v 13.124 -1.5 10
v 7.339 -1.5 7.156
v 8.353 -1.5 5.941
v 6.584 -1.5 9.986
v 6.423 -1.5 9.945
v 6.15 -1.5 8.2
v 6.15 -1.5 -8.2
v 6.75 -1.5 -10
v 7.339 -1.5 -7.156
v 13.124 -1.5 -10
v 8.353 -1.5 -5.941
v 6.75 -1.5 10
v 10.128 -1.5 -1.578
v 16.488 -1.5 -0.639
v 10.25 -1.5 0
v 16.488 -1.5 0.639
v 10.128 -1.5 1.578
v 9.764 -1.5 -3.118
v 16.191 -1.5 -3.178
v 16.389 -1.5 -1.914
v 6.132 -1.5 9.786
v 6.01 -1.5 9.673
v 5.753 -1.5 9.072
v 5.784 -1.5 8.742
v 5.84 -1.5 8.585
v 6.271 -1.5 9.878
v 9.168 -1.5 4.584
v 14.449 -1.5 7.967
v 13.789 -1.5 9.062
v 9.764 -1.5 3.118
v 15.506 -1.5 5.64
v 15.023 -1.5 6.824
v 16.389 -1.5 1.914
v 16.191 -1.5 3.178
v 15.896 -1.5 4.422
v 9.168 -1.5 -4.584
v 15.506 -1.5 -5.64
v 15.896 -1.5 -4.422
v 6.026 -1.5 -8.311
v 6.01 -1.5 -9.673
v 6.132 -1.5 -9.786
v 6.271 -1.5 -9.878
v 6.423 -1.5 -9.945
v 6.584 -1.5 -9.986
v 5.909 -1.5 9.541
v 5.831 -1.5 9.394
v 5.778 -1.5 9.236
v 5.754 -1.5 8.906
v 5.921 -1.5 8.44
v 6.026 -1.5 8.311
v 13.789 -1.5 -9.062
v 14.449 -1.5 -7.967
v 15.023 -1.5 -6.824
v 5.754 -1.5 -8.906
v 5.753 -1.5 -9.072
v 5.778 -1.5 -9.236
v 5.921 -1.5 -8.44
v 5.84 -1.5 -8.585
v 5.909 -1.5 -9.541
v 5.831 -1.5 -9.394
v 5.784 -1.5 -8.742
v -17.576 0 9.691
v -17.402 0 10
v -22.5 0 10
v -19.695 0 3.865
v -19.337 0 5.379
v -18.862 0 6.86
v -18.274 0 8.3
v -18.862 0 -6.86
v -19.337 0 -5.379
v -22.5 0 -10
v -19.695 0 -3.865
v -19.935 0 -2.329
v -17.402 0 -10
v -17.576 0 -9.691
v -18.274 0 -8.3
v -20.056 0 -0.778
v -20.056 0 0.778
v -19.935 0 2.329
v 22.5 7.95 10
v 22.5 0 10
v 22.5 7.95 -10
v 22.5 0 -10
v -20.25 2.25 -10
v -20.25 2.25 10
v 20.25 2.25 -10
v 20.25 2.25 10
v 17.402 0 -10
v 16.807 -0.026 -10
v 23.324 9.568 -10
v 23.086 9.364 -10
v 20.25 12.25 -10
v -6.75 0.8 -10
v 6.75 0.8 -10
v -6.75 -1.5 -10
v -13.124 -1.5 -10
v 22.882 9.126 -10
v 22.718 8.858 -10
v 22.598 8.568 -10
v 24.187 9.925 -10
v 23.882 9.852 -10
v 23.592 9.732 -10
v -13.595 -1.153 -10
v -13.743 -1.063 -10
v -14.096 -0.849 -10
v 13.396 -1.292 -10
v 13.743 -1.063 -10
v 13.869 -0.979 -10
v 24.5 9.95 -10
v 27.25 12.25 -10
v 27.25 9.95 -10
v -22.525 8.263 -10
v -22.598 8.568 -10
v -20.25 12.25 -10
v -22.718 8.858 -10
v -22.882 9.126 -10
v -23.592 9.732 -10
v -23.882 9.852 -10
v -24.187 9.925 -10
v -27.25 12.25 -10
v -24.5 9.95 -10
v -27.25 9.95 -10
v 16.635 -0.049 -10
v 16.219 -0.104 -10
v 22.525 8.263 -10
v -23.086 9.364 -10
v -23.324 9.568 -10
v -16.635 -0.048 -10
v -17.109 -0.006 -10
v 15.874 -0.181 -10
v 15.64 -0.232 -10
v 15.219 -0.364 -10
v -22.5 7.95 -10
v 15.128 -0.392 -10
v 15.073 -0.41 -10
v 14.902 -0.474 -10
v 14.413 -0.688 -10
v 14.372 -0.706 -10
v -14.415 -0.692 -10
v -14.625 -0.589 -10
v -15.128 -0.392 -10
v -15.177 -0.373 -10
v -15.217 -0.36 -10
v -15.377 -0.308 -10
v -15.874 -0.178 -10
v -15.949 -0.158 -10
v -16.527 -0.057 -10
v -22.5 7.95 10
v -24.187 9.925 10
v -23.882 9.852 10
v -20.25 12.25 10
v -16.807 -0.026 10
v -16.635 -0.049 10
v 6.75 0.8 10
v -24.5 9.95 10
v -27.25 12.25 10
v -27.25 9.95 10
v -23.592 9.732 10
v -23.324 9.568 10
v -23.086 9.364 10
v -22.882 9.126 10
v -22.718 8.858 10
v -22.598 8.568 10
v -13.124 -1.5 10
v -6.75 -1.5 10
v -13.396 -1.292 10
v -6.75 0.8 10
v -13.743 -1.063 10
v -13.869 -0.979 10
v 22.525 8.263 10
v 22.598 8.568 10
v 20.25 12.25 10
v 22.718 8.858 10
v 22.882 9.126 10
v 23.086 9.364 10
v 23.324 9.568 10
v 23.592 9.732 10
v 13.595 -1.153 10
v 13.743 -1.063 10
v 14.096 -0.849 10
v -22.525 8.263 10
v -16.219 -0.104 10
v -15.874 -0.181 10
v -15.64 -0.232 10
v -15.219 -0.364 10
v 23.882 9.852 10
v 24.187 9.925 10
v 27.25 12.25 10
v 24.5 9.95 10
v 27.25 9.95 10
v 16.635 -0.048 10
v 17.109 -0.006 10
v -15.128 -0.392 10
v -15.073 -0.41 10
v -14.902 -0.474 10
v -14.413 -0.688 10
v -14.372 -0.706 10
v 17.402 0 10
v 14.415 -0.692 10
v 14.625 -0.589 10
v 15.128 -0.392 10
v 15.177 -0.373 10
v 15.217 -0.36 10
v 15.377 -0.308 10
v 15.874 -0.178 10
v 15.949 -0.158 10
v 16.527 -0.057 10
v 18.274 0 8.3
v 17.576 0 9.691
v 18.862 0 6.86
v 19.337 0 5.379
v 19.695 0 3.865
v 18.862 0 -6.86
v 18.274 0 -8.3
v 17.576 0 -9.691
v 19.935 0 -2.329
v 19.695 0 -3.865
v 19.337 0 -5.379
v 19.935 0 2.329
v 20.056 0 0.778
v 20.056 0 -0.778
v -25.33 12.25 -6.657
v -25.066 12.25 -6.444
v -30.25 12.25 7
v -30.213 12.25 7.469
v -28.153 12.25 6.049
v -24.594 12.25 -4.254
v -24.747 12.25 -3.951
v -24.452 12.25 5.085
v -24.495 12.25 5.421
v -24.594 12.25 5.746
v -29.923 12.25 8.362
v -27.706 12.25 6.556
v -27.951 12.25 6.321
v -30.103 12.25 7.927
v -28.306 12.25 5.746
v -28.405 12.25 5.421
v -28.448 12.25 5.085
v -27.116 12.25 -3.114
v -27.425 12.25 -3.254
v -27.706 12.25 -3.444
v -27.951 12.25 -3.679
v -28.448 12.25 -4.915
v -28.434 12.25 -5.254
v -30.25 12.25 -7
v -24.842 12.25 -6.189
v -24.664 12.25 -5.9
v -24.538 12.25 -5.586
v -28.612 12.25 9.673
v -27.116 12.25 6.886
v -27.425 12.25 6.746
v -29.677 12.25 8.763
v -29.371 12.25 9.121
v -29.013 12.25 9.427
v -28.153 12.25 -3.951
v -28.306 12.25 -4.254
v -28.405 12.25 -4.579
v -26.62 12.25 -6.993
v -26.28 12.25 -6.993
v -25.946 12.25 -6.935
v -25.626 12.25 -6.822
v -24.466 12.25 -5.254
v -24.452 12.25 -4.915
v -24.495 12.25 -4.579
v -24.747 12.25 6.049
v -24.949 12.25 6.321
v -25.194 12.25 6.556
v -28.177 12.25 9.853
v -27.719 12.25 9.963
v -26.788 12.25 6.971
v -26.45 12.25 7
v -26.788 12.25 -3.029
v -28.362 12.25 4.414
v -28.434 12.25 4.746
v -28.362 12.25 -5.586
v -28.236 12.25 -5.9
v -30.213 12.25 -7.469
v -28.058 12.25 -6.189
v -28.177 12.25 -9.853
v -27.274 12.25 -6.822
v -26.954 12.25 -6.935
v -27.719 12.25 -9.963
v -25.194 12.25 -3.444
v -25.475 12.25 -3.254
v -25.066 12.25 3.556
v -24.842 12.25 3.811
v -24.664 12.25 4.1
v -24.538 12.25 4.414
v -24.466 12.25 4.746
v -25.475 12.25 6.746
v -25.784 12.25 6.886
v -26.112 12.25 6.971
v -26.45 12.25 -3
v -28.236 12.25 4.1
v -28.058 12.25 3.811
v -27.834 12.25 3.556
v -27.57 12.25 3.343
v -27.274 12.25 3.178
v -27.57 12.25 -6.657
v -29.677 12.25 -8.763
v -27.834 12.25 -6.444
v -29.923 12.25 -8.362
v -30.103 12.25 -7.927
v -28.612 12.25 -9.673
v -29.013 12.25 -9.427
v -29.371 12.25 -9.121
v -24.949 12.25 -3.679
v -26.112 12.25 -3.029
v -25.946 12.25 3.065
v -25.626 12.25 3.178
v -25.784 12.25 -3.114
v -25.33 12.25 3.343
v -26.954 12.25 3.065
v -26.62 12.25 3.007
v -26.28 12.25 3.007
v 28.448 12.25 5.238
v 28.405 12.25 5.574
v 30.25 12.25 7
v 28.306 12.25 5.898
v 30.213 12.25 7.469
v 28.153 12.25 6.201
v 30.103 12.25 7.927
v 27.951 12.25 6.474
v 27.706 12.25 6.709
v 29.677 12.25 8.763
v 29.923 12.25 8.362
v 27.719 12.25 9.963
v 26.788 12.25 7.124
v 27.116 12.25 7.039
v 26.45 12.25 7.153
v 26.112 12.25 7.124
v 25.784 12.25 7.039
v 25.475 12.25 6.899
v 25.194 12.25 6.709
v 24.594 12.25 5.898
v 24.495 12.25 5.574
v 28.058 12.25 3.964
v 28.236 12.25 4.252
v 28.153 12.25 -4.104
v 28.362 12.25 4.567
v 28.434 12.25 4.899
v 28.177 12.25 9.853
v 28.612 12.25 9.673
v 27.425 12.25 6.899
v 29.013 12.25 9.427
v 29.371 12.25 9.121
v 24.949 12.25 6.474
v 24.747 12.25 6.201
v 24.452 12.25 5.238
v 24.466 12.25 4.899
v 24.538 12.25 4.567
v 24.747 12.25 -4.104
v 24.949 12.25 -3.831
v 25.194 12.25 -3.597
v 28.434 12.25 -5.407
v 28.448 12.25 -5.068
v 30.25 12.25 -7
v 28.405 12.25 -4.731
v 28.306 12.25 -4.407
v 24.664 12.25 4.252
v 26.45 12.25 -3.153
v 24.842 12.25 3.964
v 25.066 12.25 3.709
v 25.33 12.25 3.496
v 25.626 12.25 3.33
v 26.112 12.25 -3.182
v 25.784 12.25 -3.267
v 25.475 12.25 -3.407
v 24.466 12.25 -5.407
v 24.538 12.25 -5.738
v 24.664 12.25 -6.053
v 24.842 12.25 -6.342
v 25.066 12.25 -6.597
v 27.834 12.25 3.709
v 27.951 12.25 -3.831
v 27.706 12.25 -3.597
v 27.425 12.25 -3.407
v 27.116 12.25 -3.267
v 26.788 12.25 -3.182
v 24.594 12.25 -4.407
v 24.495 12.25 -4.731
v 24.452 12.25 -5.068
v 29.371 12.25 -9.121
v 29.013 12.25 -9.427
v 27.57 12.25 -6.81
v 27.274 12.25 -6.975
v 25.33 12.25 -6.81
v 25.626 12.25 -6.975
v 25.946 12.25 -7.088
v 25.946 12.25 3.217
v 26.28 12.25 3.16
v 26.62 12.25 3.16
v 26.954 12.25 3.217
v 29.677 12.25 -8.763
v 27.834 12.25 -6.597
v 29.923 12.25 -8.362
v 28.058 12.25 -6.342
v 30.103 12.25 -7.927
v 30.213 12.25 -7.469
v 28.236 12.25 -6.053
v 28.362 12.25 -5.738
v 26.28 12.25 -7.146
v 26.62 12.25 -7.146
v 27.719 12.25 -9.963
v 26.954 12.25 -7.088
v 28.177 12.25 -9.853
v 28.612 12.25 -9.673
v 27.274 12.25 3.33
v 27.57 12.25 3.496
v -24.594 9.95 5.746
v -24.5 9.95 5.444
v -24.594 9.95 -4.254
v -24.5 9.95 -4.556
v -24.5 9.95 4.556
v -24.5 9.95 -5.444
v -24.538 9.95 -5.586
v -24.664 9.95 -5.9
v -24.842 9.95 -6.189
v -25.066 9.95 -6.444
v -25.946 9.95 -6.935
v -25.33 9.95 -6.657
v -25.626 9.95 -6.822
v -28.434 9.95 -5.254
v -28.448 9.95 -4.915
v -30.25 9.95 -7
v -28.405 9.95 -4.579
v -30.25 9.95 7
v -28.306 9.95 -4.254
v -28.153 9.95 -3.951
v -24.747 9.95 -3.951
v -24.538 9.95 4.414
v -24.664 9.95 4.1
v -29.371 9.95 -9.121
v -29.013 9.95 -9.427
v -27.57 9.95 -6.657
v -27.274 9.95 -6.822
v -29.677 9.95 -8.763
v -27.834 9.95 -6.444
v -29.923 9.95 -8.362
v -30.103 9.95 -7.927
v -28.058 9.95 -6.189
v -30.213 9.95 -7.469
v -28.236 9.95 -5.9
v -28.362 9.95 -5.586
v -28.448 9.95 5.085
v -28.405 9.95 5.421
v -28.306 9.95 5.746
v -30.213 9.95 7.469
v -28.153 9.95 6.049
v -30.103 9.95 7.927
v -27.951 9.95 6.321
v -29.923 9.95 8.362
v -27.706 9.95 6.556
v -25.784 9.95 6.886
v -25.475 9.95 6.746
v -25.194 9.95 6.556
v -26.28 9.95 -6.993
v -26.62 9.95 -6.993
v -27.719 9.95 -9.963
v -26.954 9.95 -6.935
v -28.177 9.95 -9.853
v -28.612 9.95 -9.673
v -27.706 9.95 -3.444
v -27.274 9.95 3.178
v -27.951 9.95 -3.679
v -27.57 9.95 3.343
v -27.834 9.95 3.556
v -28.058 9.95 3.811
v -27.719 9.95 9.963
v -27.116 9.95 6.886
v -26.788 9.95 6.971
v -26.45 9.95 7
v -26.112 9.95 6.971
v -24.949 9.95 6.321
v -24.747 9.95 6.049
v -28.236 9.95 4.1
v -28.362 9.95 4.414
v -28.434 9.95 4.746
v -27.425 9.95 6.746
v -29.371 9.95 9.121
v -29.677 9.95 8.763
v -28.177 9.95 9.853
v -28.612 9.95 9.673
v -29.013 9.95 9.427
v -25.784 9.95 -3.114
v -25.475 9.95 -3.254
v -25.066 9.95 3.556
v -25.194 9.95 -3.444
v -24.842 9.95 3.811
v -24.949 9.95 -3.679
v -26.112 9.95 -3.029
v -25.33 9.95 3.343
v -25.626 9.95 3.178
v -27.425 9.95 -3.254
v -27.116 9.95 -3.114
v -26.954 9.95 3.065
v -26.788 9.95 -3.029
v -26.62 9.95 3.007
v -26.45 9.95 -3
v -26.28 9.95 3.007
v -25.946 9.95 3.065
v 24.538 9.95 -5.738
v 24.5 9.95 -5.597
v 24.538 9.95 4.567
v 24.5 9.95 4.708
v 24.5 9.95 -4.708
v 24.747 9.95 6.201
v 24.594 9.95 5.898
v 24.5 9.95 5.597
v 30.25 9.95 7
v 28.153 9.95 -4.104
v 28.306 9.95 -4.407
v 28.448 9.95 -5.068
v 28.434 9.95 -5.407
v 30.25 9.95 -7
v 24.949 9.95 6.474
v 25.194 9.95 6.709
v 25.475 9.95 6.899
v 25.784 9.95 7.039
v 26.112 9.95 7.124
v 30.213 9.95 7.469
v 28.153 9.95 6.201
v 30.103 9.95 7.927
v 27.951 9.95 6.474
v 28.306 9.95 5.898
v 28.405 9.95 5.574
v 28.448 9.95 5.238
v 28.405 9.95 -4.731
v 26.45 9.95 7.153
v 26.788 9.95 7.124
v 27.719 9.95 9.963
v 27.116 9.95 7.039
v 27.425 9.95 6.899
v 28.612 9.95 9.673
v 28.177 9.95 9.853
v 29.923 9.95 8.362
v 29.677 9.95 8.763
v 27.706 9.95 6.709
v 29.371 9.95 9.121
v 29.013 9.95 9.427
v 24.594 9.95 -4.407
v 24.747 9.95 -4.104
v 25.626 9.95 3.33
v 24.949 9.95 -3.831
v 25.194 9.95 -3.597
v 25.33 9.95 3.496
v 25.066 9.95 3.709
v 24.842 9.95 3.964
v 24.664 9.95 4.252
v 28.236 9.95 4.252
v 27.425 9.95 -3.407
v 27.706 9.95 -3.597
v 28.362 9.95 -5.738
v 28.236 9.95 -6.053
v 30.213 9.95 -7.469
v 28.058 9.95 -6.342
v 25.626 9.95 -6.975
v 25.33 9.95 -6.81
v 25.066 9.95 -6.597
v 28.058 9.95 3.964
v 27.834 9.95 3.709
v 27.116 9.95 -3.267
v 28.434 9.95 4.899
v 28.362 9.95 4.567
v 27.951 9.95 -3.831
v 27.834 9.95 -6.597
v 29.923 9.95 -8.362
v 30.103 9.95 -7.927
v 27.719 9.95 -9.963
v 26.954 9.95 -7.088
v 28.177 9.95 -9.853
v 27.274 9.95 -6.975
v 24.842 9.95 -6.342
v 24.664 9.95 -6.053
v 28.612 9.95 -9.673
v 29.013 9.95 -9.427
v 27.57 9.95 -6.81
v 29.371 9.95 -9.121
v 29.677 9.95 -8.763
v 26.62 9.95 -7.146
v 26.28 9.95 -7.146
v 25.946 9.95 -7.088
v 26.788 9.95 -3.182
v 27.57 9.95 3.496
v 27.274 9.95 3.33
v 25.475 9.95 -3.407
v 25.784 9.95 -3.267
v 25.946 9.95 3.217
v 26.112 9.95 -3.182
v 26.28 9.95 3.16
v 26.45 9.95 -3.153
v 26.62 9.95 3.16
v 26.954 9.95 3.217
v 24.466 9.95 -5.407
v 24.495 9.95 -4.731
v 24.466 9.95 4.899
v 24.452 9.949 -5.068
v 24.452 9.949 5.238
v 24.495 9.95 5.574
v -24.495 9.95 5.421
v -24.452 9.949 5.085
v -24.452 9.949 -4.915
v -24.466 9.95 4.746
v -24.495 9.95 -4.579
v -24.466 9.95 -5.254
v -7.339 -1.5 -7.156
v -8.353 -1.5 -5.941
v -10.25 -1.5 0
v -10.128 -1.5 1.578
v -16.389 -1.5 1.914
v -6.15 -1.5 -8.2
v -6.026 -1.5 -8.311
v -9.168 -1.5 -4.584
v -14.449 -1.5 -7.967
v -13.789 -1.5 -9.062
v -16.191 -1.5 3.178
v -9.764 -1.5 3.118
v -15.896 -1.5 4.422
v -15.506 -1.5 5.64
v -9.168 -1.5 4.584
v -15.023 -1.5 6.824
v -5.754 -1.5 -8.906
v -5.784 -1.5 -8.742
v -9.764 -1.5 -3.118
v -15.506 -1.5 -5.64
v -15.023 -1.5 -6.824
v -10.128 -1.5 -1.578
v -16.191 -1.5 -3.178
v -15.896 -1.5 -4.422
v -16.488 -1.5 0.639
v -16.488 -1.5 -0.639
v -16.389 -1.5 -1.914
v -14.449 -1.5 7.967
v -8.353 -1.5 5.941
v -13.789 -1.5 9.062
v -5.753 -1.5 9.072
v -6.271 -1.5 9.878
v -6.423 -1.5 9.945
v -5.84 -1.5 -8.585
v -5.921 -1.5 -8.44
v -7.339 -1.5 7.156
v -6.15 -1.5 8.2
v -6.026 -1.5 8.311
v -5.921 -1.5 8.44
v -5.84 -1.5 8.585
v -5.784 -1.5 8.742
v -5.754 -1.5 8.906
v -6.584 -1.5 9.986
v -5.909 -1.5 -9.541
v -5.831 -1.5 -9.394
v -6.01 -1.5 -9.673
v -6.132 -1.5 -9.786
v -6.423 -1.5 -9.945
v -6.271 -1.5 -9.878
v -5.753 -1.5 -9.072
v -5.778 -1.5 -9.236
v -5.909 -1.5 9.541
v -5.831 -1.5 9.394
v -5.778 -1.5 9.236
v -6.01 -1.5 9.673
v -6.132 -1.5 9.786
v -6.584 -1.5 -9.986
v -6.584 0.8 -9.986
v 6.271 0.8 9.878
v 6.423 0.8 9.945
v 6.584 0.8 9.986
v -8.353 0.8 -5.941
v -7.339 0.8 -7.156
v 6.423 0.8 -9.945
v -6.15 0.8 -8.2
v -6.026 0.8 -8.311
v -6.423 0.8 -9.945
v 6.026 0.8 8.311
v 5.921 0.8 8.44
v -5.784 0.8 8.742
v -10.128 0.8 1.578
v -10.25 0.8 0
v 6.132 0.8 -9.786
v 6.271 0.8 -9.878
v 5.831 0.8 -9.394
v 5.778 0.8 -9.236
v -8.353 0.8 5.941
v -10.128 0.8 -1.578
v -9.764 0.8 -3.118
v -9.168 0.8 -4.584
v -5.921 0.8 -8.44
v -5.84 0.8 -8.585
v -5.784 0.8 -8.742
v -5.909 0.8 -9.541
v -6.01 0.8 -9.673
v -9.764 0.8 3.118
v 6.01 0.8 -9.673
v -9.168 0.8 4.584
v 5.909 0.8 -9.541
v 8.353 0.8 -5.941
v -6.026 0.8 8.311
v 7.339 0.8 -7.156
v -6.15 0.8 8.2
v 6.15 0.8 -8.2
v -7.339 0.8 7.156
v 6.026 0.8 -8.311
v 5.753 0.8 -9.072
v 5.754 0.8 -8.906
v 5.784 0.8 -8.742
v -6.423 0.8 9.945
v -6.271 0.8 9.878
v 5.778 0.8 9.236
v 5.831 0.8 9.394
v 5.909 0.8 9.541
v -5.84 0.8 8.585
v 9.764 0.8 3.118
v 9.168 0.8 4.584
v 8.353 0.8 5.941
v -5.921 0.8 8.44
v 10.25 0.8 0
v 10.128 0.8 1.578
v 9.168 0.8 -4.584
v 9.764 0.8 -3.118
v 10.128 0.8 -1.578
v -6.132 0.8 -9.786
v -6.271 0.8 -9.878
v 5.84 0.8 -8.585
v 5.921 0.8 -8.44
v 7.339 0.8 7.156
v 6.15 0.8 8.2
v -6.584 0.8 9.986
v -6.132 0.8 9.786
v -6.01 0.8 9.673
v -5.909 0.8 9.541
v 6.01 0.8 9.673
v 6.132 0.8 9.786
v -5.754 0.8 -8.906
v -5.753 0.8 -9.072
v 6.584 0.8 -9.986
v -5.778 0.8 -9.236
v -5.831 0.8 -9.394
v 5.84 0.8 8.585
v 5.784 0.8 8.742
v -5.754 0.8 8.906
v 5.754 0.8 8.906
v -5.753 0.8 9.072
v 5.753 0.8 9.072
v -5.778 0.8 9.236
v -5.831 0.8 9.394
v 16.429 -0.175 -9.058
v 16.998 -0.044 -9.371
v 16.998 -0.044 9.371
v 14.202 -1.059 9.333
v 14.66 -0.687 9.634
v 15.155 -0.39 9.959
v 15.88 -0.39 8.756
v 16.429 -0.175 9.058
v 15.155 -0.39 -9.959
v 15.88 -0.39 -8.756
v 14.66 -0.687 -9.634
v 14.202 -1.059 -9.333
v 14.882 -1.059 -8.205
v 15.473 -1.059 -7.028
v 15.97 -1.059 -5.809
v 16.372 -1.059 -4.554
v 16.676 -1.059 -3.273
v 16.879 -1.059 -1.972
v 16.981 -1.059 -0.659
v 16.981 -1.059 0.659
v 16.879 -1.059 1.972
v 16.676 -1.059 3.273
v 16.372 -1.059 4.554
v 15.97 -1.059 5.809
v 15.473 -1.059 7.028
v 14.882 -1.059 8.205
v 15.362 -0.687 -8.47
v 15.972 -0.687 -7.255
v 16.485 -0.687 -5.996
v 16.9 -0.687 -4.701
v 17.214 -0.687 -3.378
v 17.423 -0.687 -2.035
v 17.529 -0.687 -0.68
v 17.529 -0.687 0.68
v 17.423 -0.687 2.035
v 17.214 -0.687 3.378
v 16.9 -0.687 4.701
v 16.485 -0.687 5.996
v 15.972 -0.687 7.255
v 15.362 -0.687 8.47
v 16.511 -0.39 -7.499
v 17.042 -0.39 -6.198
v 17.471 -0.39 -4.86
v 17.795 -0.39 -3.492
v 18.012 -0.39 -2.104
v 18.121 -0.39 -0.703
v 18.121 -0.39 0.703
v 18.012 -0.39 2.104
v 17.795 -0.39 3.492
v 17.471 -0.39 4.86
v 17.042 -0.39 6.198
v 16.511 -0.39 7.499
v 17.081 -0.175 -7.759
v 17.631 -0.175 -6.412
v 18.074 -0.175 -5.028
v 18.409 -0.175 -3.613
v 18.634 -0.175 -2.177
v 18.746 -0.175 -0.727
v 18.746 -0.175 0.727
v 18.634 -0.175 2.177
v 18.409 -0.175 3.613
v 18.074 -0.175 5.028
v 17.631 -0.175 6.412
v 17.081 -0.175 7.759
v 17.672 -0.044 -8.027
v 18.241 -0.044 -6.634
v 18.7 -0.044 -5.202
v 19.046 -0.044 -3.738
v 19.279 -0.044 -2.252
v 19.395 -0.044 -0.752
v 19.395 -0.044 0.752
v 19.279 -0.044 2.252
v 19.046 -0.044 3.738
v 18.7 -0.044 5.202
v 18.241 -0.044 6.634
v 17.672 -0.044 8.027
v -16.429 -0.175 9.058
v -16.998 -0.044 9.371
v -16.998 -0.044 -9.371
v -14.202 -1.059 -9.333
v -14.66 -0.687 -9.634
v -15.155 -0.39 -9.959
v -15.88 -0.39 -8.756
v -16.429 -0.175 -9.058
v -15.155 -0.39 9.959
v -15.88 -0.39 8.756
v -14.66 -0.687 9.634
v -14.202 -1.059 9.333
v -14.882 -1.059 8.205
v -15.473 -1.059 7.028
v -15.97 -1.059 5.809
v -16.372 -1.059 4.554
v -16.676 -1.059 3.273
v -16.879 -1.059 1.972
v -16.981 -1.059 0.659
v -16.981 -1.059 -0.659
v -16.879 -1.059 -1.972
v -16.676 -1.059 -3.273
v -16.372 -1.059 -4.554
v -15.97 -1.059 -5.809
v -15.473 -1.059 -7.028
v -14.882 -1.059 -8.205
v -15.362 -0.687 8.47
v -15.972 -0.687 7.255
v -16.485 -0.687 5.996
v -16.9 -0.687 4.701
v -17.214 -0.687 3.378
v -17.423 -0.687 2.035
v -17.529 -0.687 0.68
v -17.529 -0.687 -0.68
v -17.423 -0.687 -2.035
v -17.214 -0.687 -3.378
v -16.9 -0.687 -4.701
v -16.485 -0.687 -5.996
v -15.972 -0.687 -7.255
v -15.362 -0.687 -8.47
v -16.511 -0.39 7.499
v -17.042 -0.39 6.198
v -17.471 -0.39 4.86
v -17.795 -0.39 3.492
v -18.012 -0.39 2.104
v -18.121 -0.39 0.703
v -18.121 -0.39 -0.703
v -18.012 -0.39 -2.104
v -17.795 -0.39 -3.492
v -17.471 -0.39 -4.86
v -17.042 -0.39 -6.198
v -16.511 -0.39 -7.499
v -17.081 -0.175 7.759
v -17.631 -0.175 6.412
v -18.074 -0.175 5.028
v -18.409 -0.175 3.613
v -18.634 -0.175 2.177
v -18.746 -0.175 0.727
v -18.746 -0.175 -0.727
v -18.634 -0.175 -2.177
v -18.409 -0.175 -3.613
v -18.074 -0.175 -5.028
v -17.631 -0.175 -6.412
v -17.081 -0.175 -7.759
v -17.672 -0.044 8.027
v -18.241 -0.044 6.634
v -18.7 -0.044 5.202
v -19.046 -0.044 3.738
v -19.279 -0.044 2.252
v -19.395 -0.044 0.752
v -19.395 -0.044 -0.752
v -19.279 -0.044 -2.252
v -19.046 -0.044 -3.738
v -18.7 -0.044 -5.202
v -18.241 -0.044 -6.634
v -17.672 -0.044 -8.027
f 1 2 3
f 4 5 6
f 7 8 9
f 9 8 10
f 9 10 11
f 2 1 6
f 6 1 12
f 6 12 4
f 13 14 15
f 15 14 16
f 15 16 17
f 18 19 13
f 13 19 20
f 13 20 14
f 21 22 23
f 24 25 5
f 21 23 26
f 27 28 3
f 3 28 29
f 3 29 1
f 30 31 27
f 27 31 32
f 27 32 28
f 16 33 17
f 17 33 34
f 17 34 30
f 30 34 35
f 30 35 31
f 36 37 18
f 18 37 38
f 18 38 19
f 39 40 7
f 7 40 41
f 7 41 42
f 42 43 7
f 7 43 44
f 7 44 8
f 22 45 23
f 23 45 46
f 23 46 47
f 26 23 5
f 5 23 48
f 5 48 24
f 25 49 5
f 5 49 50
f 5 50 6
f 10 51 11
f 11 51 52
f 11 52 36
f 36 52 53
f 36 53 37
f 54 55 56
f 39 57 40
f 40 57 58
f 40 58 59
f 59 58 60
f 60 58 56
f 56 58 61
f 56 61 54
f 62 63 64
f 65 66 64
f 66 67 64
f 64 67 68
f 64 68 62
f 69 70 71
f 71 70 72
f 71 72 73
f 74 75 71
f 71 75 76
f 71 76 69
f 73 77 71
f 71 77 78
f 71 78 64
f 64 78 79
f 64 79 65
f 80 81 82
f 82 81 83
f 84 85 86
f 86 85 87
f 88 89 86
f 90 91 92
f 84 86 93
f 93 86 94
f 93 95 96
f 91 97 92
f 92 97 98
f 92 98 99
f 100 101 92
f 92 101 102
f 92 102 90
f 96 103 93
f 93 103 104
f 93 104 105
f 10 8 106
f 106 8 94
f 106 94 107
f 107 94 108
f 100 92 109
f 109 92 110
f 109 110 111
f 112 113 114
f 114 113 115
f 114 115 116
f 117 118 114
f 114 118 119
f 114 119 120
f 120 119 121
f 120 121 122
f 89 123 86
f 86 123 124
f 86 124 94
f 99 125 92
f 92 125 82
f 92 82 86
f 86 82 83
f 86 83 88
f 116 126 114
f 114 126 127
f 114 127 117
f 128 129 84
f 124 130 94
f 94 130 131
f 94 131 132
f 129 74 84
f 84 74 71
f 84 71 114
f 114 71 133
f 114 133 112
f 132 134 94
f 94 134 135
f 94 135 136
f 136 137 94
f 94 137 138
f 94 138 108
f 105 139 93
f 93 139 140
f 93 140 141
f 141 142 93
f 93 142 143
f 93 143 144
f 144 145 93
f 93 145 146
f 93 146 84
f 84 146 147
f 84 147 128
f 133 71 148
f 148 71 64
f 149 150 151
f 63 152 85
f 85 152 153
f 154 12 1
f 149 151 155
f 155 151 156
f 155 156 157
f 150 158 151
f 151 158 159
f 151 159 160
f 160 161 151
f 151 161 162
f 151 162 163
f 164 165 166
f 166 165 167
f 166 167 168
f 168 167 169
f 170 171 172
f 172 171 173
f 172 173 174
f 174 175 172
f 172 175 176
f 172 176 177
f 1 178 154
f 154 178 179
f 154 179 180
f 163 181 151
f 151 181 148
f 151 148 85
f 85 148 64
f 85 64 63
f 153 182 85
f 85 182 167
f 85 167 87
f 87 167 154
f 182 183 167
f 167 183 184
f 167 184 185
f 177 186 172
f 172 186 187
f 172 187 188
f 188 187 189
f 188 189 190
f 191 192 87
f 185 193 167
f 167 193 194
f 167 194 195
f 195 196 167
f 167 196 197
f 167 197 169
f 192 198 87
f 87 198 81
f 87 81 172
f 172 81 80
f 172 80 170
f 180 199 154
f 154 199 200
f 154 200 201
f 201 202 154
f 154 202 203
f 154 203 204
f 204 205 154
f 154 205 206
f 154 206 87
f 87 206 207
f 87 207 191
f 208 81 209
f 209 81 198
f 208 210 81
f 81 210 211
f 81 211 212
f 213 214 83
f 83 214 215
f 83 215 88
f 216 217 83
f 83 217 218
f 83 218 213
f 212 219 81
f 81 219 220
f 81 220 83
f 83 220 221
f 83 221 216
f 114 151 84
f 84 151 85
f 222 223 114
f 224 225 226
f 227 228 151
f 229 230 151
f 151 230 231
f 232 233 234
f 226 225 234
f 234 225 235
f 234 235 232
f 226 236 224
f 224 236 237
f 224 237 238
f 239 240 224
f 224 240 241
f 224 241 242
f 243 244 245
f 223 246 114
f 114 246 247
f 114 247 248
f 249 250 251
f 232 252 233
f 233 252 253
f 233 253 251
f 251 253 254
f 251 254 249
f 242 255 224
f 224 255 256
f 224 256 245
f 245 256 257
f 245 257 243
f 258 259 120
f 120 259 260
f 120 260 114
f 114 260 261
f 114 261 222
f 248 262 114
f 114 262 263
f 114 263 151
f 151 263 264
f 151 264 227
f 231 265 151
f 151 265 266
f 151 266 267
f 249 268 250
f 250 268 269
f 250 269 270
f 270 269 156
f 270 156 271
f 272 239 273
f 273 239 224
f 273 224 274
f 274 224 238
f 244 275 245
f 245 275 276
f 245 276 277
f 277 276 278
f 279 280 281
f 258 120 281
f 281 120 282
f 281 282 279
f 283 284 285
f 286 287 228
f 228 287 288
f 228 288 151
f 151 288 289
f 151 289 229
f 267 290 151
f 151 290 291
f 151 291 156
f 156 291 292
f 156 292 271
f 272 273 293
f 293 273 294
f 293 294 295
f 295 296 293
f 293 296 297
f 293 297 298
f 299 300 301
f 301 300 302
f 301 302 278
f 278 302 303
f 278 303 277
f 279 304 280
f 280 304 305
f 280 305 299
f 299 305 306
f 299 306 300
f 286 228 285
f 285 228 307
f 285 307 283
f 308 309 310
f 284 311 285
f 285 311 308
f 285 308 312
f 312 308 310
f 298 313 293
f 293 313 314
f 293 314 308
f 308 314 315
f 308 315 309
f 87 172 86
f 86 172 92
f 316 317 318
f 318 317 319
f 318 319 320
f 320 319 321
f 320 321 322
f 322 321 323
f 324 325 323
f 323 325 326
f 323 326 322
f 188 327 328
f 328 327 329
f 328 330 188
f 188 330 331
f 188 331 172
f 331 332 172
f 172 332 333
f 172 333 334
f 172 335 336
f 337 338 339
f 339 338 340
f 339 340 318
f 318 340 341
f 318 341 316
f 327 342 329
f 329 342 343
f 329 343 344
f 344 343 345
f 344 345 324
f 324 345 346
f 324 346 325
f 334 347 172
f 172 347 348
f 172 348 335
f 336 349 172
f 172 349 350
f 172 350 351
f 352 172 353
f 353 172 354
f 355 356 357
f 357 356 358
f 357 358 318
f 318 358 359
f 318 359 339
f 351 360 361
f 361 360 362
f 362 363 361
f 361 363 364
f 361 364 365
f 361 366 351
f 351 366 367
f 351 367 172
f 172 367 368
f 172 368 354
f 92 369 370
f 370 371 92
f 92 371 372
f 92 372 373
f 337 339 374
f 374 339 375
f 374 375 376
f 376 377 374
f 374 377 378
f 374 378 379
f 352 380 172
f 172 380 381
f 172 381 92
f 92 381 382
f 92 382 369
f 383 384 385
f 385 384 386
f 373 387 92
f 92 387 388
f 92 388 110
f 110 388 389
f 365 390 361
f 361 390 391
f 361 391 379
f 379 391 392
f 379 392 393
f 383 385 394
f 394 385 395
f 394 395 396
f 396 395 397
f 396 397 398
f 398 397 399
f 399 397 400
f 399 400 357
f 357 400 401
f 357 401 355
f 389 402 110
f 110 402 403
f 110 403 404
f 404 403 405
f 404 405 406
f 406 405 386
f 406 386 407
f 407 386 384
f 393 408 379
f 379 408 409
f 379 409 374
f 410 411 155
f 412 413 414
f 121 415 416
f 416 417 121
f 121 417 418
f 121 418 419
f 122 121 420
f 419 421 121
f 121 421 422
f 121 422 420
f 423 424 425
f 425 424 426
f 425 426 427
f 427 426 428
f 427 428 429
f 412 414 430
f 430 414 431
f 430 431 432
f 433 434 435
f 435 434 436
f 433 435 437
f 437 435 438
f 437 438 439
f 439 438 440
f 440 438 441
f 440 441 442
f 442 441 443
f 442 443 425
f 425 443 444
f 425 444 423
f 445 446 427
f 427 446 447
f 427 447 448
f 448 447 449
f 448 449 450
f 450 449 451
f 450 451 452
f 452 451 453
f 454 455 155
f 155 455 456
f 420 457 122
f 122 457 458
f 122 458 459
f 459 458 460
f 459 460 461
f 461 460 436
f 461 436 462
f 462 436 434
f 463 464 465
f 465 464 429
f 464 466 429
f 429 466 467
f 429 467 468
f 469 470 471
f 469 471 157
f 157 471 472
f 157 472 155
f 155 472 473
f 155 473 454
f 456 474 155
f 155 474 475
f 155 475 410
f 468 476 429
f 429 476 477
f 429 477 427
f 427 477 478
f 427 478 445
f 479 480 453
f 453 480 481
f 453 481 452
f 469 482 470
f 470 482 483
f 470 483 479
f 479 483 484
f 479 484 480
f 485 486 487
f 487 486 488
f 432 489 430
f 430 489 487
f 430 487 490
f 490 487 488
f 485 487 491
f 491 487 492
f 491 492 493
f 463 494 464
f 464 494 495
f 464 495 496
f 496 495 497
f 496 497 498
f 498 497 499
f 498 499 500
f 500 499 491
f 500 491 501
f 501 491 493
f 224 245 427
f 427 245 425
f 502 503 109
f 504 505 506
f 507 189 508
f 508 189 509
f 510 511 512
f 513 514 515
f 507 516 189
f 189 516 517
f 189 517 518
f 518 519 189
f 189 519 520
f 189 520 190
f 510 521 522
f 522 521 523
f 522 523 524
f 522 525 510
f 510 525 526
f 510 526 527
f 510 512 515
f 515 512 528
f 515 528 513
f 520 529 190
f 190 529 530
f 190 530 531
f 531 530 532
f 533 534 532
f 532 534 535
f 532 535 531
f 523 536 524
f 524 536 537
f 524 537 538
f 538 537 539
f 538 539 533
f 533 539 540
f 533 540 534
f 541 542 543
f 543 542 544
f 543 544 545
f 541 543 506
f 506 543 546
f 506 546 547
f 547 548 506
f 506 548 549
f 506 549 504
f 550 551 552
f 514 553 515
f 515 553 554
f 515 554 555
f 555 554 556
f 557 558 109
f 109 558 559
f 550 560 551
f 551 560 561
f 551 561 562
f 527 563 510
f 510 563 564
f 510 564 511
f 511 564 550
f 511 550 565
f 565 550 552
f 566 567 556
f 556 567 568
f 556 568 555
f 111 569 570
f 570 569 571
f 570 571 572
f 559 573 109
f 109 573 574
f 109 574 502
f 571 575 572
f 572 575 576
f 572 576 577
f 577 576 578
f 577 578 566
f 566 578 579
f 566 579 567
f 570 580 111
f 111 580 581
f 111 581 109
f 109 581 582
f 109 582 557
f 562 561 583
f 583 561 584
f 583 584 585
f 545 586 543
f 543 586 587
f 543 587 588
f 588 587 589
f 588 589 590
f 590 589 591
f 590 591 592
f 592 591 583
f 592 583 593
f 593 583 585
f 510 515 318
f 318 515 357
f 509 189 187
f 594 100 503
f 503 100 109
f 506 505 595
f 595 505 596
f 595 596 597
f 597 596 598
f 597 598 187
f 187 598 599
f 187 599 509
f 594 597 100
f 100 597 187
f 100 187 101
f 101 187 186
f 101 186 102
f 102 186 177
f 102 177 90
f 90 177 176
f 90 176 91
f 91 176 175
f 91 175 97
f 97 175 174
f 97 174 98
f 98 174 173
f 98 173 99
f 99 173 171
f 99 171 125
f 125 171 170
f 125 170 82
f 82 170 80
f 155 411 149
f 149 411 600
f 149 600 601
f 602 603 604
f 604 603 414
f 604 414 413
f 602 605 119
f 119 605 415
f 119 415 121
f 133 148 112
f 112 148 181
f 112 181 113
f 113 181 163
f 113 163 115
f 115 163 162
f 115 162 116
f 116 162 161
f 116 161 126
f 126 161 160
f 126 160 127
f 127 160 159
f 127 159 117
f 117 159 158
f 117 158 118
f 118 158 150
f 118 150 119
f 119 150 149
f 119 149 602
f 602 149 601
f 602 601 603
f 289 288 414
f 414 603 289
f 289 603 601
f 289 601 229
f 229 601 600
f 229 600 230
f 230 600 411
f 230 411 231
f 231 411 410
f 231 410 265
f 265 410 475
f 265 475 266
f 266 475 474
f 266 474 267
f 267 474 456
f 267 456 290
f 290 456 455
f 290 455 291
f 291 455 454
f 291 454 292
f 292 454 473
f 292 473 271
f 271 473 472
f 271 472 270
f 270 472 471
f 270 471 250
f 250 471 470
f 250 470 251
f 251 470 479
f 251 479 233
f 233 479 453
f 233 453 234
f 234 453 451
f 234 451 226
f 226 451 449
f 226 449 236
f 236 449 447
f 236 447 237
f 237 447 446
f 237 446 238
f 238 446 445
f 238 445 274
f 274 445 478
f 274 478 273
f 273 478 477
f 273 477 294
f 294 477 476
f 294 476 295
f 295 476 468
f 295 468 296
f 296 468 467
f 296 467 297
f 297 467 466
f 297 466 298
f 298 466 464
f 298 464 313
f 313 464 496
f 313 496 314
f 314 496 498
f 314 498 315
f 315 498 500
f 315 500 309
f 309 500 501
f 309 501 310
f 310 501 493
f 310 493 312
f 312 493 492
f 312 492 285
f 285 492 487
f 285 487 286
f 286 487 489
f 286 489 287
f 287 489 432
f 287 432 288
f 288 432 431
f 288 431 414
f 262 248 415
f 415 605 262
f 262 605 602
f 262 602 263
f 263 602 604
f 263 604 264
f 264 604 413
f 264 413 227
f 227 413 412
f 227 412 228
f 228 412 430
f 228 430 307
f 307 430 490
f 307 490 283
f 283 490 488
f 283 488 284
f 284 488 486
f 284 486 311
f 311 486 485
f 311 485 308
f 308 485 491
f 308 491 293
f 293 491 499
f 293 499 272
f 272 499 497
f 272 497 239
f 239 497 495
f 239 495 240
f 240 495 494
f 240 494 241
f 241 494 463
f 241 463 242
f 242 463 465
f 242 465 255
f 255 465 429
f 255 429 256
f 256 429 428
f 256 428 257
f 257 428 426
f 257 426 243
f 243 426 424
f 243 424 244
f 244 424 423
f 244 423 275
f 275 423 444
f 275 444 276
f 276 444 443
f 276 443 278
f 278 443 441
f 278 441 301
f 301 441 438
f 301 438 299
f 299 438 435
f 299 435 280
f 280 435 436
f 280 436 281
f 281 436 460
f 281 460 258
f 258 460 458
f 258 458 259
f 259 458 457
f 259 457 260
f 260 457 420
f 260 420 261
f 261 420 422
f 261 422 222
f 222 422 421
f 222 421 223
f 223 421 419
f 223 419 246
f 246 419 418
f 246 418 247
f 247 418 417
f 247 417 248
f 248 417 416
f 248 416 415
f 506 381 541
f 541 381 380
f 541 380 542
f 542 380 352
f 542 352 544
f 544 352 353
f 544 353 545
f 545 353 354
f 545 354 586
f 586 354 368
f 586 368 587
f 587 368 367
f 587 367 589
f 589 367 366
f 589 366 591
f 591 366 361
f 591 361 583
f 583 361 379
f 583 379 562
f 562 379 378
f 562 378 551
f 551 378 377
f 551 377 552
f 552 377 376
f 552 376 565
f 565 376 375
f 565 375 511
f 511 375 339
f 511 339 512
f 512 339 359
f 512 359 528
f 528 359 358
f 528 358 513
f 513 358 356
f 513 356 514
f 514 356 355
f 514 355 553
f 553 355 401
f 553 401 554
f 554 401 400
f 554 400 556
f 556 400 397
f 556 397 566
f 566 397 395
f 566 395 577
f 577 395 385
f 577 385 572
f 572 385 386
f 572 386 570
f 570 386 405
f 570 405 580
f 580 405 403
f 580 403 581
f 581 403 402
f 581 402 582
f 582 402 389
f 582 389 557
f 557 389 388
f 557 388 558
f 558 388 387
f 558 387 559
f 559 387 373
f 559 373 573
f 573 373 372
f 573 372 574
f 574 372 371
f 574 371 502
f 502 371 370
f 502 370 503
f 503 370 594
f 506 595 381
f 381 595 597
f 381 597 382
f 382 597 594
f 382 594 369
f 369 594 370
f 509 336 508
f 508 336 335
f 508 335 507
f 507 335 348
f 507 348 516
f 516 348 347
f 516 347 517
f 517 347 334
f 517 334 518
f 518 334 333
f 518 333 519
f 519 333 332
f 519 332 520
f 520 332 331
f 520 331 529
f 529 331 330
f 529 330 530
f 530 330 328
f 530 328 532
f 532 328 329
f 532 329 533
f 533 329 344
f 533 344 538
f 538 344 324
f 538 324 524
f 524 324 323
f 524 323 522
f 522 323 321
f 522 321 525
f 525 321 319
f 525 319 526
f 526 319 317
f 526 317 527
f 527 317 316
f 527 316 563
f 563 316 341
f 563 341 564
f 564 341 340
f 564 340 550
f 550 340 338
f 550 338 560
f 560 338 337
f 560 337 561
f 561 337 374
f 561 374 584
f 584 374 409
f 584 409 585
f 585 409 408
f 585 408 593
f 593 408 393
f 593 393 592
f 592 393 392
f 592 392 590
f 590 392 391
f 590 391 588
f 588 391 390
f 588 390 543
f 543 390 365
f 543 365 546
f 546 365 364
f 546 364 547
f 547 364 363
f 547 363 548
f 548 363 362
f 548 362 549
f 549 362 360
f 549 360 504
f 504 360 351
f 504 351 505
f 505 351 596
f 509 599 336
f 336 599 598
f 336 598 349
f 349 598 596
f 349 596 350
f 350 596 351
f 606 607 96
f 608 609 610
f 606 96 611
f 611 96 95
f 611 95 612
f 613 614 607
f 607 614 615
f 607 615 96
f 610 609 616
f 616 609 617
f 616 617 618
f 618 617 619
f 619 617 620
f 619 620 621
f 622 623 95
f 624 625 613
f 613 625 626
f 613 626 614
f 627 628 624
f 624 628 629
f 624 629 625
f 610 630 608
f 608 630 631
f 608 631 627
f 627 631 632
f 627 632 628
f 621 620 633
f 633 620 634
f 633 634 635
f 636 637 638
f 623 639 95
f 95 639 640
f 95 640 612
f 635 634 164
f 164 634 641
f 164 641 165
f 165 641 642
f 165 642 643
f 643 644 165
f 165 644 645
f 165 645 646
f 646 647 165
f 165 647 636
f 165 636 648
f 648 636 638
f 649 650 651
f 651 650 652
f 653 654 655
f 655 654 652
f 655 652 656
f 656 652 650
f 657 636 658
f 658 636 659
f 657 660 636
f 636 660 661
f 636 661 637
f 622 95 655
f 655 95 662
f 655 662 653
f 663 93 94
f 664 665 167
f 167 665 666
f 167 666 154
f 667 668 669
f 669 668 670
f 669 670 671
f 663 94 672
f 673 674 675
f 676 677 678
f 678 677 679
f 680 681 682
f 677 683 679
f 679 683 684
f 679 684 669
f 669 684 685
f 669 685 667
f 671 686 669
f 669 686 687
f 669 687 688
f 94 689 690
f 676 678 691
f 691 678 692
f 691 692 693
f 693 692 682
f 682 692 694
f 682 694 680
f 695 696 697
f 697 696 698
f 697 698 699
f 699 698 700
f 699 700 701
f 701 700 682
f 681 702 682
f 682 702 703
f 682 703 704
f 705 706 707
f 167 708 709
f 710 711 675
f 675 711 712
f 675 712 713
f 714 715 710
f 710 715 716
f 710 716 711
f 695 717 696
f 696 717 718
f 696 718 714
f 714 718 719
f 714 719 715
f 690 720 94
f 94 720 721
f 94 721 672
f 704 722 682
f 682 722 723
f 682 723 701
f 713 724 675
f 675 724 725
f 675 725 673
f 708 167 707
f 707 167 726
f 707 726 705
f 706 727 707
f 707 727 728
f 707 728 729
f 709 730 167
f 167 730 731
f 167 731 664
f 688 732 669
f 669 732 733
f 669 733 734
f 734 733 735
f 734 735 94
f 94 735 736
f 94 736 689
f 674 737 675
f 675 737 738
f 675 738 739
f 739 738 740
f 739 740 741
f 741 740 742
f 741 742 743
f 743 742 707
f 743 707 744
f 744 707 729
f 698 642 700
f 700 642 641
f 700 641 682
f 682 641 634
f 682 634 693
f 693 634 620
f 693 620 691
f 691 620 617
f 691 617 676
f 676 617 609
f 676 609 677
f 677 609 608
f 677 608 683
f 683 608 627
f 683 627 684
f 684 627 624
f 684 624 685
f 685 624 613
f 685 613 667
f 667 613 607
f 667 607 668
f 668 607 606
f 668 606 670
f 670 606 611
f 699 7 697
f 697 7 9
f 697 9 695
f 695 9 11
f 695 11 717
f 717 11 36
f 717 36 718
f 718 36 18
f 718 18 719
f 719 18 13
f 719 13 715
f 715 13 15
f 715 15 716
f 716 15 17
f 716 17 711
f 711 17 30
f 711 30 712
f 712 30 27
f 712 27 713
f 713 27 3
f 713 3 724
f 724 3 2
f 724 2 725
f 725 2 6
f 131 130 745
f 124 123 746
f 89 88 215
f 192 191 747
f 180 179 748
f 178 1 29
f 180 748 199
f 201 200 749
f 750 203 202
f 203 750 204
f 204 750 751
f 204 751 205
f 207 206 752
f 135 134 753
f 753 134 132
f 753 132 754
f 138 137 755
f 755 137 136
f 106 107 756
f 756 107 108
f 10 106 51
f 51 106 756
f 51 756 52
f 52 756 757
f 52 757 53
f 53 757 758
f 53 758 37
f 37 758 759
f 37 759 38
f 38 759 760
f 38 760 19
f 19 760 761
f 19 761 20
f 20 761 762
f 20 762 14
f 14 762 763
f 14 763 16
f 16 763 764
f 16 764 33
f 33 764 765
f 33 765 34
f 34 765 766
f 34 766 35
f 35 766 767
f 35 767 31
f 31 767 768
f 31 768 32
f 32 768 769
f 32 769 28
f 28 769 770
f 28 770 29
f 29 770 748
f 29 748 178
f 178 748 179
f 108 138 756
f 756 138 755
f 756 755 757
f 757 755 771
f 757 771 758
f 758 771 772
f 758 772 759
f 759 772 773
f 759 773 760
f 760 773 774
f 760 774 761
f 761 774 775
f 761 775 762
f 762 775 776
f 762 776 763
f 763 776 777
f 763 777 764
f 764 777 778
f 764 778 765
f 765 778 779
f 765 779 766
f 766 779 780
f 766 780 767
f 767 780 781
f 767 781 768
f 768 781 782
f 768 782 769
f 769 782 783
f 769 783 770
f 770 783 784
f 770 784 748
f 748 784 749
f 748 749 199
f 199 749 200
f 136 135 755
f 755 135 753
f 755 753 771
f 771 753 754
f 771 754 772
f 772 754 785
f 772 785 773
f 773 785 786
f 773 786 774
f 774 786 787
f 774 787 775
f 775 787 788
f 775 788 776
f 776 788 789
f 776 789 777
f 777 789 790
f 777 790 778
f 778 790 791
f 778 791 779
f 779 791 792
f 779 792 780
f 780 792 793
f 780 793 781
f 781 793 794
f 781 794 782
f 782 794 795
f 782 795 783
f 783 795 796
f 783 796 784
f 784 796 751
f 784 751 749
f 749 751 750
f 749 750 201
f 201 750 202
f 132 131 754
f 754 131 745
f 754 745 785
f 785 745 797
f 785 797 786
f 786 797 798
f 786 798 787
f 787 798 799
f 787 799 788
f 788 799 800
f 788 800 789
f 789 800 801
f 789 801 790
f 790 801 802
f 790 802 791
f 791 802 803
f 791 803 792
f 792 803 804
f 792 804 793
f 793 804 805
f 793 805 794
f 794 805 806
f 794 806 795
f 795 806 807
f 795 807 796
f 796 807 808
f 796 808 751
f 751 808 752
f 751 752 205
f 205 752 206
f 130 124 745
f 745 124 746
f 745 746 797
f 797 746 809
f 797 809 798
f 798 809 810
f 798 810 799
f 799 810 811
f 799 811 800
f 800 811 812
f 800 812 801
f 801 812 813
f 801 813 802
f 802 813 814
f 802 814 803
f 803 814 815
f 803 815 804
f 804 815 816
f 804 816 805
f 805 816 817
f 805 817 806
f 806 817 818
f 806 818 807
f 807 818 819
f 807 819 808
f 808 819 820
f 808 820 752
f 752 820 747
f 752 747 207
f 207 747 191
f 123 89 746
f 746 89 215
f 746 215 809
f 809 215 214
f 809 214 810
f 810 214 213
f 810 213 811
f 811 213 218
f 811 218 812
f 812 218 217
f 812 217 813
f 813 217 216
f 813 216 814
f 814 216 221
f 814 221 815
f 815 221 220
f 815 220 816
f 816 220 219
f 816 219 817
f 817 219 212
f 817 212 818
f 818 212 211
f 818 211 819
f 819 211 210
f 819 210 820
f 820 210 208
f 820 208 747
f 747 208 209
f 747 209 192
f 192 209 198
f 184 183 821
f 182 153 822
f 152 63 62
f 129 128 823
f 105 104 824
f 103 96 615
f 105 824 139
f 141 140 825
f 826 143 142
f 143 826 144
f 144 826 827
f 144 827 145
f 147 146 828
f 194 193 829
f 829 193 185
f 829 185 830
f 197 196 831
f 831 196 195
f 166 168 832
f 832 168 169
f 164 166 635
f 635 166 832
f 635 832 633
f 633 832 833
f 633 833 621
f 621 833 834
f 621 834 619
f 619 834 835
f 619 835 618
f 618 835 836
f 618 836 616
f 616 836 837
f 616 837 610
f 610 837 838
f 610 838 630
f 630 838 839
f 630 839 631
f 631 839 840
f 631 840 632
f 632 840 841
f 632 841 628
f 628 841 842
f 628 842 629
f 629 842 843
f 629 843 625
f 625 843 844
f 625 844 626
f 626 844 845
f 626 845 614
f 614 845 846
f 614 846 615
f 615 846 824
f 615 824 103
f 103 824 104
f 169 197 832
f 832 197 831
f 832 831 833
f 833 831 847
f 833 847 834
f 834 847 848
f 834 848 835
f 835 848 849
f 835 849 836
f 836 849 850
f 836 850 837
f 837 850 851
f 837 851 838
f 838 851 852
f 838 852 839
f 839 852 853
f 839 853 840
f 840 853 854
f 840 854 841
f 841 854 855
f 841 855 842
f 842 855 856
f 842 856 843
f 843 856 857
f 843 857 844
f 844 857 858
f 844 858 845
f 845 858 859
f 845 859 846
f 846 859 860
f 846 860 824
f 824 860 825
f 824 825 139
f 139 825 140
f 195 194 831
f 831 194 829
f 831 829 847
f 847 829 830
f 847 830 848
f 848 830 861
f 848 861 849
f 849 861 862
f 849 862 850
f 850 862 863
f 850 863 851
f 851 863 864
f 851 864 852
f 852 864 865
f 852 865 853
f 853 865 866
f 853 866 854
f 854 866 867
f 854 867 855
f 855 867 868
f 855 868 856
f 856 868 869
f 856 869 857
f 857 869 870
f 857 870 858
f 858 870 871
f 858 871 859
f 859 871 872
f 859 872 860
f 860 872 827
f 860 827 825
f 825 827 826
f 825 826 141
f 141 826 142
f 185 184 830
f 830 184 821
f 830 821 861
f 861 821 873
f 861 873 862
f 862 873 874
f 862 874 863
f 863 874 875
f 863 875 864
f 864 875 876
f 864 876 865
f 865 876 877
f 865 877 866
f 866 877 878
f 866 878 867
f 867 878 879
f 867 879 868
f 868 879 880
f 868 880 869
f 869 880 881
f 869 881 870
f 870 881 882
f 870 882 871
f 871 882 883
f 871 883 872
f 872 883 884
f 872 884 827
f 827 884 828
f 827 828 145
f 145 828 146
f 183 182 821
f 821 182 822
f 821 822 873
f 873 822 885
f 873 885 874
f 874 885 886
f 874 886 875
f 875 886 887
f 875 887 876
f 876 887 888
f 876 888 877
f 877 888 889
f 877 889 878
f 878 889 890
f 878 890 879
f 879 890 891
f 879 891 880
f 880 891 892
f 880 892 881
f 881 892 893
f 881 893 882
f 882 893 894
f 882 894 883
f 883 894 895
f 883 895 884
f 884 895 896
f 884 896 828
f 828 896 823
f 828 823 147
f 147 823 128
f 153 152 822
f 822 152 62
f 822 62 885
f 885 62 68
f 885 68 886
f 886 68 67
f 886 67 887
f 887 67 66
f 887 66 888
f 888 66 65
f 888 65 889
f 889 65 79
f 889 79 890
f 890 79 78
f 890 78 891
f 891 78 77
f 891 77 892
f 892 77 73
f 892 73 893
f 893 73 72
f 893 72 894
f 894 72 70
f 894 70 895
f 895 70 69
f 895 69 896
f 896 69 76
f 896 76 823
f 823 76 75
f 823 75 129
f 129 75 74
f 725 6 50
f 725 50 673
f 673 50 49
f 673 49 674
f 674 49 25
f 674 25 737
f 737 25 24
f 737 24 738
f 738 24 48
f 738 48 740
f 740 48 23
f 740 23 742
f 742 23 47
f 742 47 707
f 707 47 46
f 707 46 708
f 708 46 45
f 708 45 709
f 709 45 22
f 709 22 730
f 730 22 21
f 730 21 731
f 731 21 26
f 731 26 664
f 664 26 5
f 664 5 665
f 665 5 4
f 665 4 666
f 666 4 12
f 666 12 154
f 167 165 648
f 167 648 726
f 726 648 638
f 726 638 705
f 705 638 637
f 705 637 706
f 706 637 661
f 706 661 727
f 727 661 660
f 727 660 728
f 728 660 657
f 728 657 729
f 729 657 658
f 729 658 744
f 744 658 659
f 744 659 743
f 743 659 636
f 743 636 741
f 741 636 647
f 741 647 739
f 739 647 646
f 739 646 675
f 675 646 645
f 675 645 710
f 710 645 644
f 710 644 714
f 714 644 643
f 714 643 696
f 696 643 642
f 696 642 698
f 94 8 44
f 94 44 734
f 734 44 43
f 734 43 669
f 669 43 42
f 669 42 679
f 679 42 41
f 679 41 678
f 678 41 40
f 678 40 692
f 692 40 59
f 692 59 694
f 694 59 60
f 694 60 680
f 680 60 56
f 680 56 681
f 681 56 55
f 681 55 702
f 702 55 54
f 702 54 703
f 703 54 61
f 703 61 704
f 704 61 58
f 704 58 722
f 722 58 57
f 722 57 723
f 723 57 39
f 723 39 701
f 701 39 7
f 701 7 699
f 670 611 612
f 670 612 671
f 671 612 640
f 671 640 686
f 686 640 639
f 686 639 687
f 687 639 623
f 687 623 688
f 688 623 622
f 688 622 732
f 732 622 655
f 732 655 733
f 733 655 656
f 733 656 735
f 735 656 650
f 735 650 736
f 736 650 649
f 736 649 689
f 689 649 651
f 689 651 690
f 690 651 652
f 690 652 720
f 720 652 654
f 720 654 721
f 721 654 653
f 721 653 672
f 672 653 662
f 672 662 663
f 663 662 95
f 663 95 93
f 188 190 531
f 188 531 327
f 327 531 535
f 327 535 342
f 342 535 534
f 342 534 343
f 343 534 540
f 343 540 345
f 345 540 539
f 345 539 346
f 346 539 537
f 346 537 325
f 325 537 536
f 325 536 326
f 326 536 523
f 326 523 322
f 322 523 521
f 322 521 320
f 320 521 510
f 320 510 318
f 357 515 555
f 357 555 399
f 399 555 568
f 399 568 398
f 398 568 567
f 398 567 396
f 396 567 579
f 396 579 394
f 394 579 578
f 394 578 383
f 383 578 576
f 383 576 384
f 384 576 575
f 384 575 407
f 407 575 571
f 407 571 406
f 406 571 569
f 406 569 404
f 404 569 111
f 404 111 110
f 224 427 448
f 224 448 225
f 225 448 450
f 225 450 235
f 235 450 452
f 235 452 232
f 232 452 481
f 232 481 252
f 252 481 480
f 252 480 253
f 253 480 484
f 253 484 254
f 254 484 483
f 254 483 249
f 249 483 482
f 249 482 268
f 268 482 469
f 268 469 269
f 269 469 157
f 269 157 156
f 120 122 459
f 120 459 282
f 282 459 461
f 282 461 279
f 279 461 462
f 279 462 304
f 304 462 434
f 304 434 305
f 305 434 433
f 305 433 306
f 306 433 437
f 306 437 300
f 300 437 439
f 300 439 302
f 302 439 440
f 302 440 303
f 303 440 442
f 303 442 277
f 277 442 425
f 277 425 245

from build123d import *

# Parameters (mm, degrees)
SKETCH1_W           = 45
SKETCH1_H           = 20
BOSS_EXTRUDE1_DEPTH = 2.25
SKETCH2_W           = 2.25
SKETCH2_H           = 20
BOSS_EXTRUDE2_DEPTH = 10
SKETCH3_W           = 10
SKETCH3_H           = 20
BOSS_EXTRUDE3_DEPTH = 2.3
FILLET1_R           = 2
SKETCH4_R           = 2
CUT_EXTRUDE1_DEPTH  = 35.133927404
BOSS_EXTRUDE5_DEPTH = 1.5
SKETCH6_R           = 10.25
CUT_EXTRUDE2_DEPTH  = 2.3
FILLET2_R           = 5
FILLET3_R           = 1
FILLET4_R           = 3


with BuildPart() as part:
    # Sketch1 → Boss-Extrude1 (new body)
    with BuildSketch(Plane(origin=(0, 0, 0), x_dir=(1, 0, 0), z_dir=(0, 1, 0))):
        Rectangle(SKETCH1_W, SKETCH1_H)
    extrude(amount=BOSS_EXTRUDE1_DEPTH)

    # Sketch2 → Boss-Extrude2 (add)
    with BuildSketch(Plane(origin=(0, 2.25, 0), x_dir=(1, 0, 0), z_dir=(0, 1, 0))):
        with Locations((-21.375, 0)):
            Rectangle(SKETCH2_W, SKETCH2_H)
        with Locations((21.375, 0)):
            Rectangle(SKETCH2_W, SKETCH2_H)
    extrude(amount=BOSS_EXTRUDE2_DEPTH)

    # Sketch3 → Boss-Extrude3 (add)
    with BuildSketch(Plane(origin=(0, 12.25, 0), x_dir=(1, 0, 0), z_dir=(0, 1, 0))):
        with Locations((-25.25, 0)):
            Rectangle(SKETCH3_W, SKETCH3_H)
        with Locations((25.25, 0)):
            Rectangle(SKETCH3_W, SKETCH3_H)
    extrude(amount=-BOSS_EXTRUDE3_DEPTH)

    # Fillet1
    fillet1_edges = [part.edges().sort_by_distance(p)[0] for p in [
        (-22.5, 9.95, 0),
        (22.5, 9.95, 0),
    ]]
    fillet(fillet1_edges, radius=FILLET1_R)

    # Sketch4 → Cut-Extrude1 (cut, through all)
    with BuildSketch(Plane(origin=(0, 12.25, 0), x_dir=(1, 0, 0), z_dir=(0, 1, 0))):
        with Locations(Location((26.45, 5.15278214, 0), (0, 0, 270))):
            Circle(SKETCH4_R)
        with Locations(Location((26.45, -5.15278214, 0), (0, 0, 270))):
            Circle(SKETCH4_R)
        with Locations(Location((-26.45, 5, 0), (0, 0, 270))):
            Circle(SKETCH4_R)
        with Locations(Location((-26.45, -5, 0), (0, 0, 270))):
            Circle(SKETCH4_R)
    extrude(amount=-CUT_EXTRUDE1_DEPTH, mode=Mode.SUBTRACT)

    # Sketch5 → Boss-Extrude5 (add)
    with BuildSketch(Plane.XZ):
        with BuildLine():
            Line((13.124404748, 10), (-13.124404748, 10))
            ThreePointArc((-13.124404748, 10), (-16.5, 0), (-13.124404748, -10))
            Line((-13.124404748, -10), (13.124404748, -10))
            ThreePointArc((13.124404748, -10), (16.5, 0), (13.124404748, 10))
        make_face()
    extrude(amount=BOSS_EXTRUDE5_DEPTH)

    # Sketch6 → Cut-Extrude2 (cut)
    with BuildSketch(Plane.XZ.offset(1.5)):
        Circle(SKETCH6_R)
    extrude(amount=-CUT_EXTRUDE2_DEPTH, mode=Mode.SUBTRACT)

    # Fillet2
    # the kernel refuses this fillet: 5 mm, written as the material it adds along each edge
    with BuildSketch(Plane(origin=(0, 0, 0), x_dir=(0.3695559443518841, 0, -0.9292084825238021), z_dir=(-0.9292084825238021, 0, -0.3695559443518841))) as fillet2_piece_1_section:
        with BuildLine():
            CenterArc((20.070714214, 5), FILLET2_R, 224.427004001, 45.572995999)
            Line((16.5, 1.5), (16.428585716, 1.43))
            ThreePointArc((16.428585716, 1.43), (16.4, 0.75), (16.4, 0))
            Line((16.4, 0), (16.5, -0.1))
            Line((16.5, -0.1), (20.070714214, -0.1))
            Line((20.070714214, -0.1), (20.070714214, 0))
        make_face()
    fillet2_piece_1 = revolve(axis=Axis((0, 0, 0), (0, -1, 0)), revolution_arc=136.623532333, mode=Mode.PRIVATE)
    fillet2_piece_1 = split(fillet2_piece_1, bisect_by=Plane(origin=(18.120334402, -0.357167387, 10), z_dir=(0, 0, -1)), keep=Keep.TOP, mode=Mode.PRIVATE)
    fillet2_piece_1 = split(fillet2_piece_1, bisect_by=Plane(origin=(18.120334402, -0.357167387, -10), z_dir=(0, 0, 1)), keep=Keep.TOP, mode=Mode.PRIVATE)
    add(fillet2_piece_1)
    with BuildSketch(Plane(origin=(0, 0, 0), x_dir=(-0.3695559443518876, 0, 0.9292084825238008), z_dir=(0.9292084825238008, 0, 0.3695559443518876))) as fillet2_piece_2_section:
        with BuildLine():
            CenterArc((20.070714214, 5), FILLET2_R, 224.427004001, 45.572995999)
            Line((20.070714214, 0), (20.070714214, -0.1))
            Line((20.070714214, -0.1), (16.5, -0.1))
            Line((16.5, -0.1), (16.4, 0))
            ThreePointArc((16.4, 0), (16.4, 0.75), (16.428585716, 1.43))
            Line((16.428585716, 1.43), (16.5, 1.5))
        make_face()
    fillet2_piece_2 = revolve(axis=Axis((0, 0, 0), (0, -1, 0)), revolution_arc=136.623532333, mode=Mode.PRIVATE)
    fillet2_piece_2 = split(fillet2_piece_2, bisect_by=Plane(origin=(-18.120334402, -0.357167387, 10), z_dir=(0, 0, -1)), keep=Keep.TOP, mode=Mode.PRIVATE)
    fillet2_piece_2 = split(fillet2_piece_2, bisect_by=Plane(origin=(-18.120334402, -0.357167387, -10), z_dir=(0, 0, 1)), keep=Keep.TOP, mode=Mode.PRIVATE)
    add(fillet2_piece_2)

    # Fillet3
    fillet3_edges = [part.edges().sort_by_distance(p)[0] for p in [
        (-2.25, -0.35, -10),
        (-2.25, -0.35, 10),
        (2.25, -0.35, -10),
        (2.25, -0.35, 10),
    ]]
    fillet(fillet3_edges, radius=FILLET3_R)

    # Fillet4
    fillet4_edges = [part.edges().sort_by_distance(p)[0] for p in [
        (-30.25, 11.1, -10),
        (-30.25, 11.1, 10),
        (30.25, 11.1, 10),
        (30.25, 11.1, -10),
    ]]
    fillet(fillet4_edges, radius=FILLET4_R)


solid = part.part
